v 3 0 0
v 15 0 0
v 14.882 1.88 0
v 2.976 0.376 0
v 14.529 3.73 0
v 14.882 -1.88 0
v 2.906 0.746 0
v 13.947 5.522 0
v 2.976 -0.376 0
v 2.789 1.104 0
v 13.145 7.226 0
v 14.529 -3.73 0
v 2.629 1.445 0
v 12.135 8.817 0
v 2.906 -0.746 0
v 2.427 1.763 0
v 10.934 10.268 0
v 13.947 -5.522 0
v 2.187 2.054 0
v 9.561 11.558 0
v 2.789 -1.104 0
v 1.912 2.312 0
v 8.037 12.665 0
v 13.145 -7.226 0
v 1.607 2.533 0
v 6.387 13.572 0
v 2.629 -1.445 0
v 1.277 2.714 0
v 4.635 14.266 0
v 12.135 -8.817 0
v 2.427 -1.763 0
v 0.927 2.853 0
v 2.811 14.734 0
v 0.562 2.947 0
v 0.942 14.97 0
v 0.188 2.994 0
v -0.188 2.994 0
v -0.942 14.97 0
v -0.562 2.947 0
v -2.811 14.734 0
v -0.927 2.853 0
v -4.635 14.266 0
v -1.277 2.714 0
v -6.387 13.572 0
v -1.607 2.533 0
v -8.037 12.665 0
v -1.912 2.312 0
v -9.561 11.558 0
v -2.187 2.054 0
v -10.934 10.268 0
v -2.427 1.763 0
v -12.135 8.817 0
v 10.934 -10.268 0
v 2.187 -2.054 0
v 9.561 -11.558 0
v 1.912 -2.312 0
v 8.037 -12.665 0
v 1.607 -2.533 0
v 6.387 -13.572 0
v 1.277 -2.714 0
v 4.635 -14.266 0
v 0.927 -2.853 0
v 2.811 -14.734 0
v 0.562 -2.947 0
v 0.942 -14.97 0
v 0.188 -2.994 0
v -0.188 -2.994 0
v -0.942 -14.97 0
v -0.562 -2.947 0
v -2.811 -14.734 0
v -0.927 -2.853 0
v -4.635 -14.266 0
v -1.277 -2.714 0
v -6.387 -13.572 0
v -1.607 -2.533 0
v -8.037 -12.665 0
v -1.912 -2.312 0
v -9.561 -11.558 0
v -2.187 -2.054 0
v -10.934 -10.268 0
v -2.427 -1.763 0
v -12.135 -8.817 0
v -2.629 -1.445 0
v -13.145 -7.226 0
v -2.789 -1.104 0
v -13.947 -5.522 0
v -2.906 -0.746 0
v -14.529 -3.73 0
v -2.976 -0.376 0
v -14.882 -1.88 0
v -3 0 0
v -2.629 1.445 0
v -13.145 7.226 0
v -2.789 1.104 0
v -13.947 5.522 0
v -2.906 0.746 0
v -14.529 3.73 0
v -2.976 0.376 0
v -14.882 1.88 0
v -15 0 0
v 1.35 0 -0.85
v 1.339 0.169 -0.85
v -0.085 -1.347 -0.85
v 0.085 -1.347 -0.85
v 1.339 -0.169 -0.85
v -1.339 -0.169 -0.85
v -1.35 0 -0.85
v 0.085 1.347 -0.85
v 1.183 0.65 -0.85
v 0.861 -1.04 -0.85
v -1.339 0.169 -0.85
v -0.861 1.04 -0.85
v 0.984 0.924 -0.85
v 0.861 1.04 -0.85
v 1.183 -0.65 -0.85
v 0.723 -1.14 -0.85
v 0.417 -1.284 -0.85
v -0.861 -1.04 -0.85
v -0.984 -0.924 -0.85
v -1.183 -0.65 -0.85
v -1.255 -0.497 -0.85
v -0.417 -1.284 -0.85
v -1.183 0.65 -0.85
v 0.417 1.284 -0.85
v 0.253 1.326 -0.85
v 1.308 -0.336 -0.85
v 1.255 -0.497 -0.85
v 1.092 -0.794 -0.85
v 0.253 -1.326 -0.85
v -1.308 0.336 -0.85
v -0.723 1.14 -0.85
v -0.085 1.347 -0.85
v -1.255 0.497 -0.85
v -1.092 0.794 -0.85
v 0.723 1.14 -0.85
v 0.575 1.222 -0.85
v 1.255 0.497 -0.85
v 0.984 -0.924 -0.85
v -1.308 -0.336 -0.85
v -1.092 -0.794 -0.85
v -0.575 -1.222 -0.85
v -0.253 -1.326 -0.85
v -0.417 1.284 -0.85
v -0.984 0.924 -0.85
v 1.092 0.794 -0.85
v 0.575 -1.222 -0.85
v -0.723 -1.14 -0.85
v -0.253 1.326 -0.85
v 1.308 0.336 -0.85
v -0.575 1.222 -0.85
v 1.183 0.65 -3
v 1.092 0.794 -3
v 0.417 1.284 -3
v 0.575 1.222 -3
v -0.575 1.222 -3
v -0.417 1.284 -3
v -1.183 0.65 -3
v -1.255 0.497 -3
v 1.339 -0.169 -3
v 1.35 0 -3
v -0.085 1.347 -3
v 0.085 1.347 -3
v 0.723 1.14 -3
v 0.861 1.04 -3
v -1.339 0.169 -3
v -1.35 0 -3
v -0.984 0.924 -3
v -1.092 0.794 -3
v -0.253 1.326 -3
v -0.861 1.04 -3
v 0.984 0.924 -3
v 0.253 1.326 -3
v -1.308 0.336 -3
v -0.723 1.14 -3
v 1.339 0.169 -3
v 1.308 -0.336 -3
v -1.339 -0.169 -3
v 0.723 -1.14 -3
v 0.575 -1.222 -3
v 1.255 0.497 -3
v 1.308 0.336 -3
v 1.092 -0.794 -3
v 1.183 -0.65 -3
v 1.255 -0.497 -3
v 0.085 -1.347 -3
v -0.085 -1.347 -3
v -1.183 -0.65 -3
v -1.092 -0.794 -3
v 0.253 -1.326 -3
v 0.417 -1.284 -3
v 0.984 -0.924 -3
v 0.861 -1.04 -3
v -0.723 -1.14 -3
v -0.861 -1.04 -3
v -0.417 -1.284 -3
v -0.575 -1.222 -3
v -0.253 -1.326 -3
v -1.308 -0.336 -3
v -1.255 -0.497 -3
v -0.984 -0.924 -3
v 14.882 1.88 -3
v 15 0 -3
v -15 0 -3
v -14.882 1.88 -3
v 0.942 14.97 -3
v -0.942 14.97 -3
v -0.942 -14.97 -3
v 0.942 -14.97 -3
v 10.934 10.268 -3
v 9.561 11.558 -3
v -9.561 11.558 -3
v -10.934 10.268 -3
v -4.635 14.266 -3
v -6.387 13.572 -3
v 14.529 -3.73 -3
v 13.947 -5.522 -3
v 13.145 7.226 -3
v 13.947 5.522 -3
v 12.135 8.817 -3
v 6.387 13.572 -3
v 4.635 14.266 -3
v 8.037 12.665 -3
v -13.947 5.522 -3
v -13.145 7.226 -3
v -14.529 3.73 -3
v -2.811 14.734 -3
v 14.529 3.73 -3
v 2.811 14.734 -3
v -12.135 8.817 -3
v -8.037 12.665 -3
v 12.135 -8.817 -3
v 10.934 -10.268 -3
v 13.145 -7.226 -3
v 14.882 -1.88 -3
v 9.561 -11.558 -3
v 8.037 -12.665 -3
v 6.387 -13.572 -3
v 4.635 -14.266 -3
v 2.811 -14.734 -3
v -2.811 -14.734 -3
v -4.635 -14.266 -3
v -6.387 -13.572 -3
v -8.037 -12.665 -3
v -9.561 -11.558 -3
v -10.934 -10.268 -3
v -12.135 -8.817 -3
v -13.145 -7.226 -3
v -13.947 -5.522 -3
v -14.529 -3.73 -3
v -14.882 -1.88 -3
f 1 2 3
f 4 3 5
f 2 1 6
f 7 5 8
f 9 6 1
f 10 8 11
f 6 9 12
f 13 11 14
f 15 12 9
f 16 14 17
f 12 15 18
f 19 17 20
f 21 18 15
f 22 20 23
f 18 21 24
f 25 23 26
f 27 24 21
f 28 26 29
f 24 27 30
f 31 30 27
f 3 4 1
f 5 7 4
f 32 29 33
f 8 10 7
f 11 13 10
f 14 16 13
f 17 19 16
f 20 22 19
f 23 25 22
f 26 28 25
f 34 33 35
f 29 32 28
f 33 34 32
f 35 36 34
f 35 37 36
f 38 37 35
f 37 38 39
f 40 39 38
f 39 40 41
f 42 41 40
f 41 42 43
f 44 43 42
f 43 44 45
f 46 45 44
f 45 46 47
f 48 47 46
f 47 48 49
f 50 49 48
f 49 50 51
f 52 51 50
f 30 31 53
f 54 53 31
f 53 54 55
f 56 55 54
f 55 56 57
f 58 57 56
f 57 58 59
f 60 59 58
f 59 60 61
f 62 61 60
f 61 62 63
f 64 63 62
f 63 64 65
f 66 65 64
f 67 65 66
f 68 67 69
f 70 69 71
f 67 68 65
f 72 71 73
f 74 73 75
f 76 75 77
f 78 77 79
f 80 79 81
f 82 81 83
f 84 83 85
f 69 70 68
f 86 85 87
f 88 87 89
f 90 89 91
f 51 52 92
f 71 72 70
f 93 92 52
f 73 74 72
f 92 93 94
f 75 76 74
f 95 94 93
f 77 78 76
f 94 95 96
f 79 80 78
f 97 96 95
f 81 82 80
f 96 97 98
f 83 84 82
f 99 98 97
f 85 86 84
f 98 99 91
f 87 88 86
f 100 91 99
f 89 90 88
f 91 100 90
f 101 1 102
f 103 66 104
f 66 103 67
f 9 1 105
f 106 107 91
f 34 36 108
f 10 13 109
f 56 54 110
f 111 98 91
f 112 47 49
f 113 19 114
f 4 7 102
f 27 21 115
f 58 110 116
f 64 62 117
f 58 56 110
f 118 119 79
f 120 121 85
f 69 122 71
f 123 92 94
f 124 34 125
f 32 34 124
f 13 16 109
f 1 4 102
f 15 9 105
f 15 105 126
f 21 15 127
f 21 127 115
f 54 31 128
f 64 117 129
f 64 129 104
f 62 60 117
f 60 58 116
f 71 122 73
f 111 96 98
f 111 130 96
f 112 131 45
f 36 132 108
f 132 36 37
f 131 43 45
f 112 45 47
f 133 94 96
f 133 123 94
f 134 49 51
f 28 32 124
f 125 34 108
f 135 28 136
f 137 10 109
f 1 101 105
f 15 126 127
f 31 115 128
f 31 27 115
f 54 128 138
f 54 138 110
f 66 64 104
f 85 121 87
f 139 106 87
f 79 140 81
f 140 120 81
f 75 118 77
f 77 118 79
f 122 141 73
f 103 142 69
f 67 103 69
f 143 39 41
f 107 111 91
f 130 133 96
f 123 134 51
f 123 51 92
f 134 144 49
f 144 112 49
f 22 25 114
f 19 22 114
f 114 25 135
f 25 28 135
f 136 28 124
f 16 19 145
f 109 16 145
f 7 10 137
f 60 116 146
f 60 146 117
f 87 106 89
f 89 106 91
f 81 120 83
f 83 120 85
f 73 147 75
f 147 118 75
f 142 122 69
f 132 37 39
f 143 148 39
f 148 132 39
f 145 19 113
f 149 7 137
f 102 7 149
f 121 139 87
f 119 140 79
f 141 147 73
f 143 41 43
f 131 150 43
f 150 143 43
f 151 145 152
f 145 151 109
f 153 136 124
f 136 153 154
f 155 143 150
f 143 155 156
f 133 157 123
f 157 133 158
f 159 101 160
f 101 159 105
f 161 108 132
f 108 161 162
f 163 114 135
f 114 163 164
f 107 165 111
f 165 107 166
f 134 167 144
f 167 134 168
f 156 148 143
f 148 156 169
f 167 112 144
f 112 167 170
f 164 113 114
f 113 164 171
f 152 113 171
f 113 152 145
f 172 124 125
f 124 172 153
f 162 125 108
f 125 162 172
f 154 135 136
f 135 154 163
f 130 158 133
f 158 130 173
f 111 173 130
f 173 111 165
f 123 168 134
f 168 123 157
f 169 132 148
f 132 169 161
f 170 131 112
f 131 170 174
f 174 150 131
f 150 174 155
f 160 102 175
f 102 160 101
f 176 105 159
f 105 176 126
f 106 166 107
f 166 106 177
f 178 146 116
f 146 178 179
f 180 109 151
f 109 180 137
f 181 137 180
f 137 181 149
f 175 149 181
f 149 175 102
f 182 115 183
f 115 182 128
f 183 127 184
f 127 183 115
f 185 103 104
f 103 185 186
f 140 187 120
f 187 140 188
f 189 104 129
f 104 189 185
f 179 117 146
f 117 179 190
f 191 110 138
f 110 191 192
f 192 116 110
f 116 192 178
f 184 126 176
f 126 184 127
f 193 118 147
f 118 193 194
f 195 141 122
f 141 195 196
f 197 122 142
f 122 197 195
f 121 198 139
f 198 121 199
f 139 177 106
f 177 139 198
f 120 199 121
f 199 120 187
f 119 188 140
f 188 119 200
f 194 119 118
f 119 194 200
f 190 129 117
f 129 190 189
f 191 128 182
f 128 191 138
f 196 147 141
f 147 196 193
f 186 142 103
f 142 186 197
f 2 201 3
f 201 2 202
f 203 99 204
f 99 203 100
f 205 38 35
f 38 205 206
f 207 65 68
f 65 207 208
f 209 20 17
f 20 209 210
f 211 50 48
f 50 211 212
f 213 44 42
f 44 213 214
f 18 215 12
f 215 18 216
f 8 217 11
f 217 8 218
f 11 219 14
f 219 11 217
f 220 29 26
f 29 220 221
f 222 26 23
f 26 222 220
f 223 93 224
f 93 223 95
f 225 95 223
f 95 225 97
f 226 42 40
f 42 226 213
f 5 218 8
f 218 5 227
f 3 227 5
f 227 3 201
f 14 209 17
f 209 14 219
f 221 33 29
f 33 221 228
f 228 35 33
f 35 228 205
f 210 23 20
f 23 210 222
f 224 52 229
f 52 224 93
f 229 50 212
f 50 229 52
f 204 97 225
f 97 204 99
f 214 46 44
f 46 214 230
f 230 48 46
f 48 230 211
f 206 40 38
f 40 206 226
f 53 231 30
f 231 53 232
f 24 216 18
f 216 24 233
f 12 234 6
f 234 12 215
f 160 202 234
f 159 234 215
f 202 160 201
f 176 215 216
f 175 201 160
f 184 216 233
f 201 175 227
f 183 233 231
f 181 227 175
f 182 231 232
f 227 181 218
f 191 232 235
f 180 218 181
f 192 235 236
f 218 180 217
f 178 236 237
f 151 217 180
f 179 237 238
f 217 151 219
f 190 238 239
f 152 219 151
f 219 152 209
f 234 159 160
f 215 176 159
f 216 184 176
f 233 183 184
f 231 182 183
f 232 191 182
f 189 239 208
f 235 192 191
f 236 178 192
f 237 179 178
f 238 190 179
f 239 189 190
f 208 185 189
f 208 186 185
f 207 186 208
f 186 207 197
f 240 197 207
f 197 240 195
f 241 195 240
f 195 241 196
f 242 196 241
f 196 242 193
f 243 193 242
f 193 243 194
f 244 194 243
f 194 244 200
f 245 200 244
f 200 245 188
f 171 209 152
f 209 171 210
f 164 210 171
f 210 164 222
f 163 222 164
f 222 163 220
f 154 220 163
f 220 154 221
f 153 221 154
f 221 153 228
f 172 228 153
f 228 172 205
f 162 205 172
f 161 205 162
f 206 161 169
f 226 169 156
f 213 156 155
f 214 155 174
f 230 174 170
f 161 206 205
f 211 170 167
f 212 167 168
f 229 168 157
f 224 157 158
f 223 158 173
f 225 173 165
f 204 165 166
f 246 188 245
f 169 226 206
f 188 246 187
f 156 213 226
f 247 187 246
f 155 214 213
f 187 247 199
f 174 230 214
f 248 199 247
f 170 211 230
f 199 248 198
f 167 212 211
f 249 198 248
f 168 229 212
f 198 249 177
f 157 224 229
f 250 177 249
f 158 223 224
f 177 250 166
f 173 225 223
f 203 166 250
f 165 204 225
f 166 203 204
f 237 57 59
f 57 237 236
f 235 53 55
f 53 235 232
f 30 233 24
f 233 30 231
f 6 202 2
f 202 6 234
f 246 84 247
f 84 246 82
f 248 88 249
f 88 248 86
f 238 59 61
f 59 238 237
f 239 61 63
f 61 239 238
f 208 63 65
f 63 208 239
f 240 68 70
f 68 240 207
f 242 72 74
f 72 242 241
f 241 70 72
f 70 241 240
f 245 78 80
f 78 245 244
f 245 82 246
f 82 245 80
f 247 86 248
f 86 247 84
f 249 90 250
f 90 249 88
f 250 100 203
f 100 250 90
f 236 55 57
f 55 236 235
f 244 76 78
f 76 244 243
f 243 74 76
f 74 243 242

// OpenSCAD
$fn = 50;

difference() {
	union() {
		translate(v = [0, 0, -3.0]) {
			cylinder(h = 3, r = 15.0);
		}
	}
	union() {
		translate(v = [0, 0, 0]) {
			rotate(a = [0, 0, 0]) {
				difference() {
					union() {
						translate(v = [0, 0, -6.0]) {
							cylinder(h = 6, r = 1.0);
						}
						translate(v = [0, 0, -0.85]) {
							cylinder(h = 0.85, r1 = 1.35, r2 = 3.0);
						}
						translate(v = [0, 0, -6.0]) {
							cylinder(h = 6, r = 1.35);
						}
						translate(v = [0, 0, -6.0]) {
							cylinder(h = 6, r = 1.0);
						}
					}
					union();
				}
			}
		}
	}
}
